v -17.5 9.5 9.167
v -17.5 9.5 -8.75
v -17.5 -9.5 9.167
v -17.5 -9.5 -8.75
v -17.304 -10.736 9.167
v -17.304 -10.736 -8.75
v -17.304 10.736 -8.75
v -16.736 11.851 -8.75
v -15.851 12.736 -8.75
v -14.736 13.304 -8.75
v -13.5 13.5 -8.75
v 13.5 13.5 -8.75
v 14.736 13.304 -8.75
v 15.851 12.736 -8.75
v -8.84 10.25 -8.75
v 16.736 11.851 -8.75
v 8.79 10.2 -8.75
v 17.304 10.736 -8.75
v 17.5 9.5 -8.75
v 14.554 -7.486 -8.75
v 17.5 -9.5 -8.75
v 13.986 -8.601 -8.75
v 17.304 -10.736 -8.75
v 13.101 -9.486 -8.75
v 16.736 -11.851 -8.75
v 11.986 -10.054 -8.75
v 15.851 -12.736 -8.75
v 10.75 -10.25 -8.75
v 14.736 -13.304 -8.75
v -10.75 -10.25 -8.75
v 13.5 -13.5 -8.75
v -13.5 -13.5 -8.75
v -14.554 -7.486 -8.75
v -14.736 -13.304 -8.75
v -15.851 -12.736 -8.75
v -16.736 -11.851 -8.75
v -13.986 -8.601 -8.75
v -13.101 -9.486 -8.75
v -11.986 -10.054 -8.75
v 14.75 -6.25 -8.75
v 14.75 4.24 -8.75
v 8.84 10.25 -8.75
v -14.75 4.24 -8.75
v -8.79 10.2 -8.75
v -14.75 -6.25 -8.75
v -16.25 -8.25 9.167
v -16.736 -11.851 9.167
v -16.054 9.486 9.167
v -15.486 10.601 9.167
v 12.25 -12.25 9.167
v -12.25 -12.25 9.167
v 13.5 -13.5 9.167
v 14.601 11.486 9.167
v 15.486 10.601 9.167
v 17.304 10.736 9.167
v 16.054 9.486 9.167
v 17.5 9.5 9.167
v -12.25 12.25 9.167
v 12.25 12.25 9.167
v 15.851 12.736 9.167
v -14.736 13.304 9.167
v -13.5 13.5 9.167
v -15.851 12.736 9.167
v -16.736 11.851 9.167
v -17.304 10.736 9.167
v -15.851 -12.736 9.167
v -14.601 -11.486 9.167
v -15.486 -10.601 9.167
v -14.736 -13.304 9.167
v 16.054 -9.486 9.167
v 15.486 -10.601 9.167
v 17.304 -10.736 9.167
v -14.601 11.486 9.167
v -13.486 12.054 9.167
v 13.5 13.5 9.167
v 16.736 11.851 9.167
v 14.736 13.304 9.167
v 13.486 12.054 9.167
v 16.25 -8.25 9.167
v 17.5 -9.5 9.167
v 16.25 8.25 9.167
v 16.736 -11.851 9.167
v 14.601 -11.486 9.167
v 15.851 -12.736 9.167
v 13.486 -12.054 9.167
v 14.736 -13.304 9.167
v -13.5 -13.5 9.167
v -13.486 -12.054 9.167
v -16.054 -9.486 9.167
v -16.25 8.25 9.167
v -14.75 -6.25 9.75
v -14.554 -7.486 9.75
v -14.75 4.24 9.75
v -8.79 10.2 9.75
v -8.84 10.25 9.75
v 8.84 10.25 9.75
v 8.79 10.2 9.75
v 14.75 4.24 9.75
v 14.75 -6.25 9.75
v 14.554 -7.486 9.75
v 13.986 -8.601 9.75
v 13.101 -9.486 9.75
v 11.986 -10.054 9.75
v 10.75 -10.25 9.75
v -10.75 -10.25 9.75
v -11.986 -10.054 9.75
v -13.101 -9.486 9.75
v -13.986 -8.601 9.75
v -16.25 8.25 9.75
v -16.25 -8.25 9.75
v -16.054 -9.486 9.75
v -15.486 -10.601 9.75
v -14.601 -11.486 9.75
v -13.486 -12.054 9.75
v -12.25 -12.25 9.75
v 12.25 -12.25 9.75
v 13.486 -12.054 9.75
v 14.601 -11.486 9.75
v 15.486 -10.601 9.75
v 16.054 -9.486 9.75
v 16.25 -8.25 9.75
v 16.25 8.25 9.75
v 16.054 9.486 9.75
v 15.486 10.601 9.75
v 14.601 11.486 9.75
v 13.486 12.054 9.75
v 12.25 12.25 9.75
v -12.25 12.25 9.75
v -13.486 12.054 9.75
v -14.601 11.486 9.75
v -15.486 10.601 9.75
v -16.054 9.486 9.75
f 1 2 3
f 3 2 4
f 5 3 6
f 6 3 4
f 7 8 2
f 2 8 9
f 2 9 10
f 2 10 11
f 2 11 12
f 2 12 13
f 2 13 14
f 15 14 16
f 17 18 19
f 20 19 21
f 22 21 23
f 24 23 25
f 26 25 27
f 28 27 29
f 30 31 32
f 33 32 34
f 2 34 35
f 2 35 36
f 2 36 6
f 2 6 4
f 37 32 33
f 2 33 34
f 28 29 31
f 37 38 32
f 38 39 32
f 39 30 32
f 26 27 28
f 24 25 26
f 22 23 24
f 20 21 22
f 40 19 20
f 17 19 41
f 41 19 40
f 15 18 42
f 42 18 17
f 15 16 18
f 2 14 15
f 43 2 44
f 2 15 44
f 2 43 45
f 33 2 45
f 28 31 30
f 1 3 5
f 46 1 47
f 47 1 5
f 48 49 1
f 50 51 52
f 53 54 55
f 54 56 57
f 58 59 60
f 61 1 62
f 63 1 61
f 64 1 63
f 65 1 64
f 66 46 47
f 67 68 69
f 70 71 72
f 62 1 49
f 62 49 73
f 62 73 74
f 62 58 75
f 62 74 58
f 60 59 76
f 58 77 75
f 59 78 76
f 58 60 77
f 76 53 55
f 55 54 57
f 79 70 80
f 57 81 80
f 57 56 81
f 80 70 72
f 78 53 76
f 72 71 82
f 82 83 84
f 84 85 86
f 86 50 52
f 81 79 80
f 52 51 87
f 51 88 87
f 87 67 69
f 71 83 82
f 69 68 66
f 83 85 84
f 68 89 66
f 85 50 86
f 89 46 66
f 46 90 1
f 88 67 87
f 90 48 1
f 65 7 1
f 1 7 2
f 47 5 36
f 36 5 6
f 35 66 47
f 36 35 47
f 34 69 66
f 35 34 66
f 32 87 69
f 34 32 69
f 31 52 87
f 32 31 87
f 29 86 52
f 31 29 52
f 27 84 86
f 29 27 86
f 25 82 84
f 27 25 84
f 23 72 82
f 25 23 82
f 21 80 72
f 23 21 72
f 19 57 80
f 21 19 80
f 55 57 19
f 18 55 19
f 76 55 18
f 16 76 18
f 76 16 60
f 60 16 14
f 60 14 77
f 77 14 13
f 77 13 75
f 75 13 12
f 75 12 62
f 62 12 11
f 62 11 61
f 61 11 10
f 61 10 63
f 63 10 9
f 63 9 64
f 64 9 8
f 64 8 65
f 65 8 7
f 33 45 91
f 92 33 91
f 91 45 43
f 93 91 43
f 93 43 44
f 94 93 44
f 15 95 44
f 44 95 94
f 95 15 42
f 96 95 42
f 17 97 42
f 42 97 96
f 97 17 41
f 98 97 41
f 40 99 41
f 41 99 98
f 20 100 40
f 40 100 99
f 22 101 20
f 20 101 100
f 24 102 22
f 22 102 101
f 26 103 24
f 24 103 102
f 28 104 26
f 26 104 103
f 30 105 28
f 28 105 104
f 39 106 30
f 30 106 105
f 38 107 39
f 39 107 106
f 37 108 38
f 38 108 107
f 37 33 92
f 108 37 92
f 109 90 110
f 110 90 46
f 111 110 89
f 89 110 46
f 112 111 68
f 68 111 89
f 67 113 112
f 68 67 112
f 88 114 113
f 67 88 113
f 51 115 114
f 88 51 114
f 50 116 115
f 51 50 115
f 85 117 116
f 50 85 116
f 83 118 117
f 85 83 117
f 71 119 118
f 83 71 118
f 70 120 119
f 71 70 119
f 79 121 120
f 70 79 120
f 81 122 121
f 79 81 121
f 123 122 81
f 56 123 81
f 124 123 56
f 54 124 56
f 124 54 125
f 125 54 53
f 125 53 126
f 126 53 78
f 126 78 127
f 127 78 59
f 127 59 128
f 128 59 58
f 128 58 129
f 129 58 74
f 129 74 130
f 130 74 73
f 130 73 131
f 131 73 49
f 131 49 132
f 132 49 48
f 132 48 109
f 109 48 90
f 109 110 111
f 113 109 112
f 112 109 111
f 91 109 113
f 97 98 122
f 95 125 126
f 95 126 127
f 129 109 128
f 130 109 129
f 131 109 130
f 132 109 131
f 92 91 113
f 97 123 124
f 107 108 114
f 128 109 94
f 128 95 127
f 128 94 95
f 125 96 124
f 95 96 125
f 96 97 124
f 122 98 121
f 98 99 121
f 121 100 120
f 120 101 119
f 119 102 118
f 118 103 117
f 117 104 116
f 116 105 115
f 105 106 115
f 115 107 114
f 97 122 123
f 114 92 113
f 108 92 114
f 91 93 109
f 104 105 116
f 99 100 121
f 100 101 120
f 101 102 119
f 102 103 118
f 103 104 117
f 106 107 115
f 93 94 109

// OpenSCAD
height = 19.5;

module outer() {
	minkowski() {
		cube([35 - 8, 27 - 8, height - 2], center=true);
		cylinder(r=4, h=1, $fn=20);
	}
}

module inner() {
	minkowski() {
		cube([29.5 - 8, 20.5 - 8, height - 2], center=true);
		cylinder(r=4, h=1, $fn=20);
	}
}

module frame_outer() {
	minkowski() {
		cube([32.5 - 8, 24.5 - 8, height - 2], center=true);
		cylinder(r=4, h=1, $fn=20);
	}
}

module body() {
	difference() {
		outer();
		inner();
	}
	
	intersection() {
		union() {
			translate([-14.8, 10.2, 0])
				rotate([0, 0, 45])
					cube([8.5, 8.5, height], center=true);
			
			translate([14.8, 10.2, 0])
				rotate([0, 0, 45])
					cube([8.5, 8.5, height], center=true);
		}
		inner();
	}
}

difference() {
	body();

	translate([0, 0, height / 2])
	scale([1, 1, 1 / 15])
	difference() {
		outer();
		frame_outer();
	}
}
